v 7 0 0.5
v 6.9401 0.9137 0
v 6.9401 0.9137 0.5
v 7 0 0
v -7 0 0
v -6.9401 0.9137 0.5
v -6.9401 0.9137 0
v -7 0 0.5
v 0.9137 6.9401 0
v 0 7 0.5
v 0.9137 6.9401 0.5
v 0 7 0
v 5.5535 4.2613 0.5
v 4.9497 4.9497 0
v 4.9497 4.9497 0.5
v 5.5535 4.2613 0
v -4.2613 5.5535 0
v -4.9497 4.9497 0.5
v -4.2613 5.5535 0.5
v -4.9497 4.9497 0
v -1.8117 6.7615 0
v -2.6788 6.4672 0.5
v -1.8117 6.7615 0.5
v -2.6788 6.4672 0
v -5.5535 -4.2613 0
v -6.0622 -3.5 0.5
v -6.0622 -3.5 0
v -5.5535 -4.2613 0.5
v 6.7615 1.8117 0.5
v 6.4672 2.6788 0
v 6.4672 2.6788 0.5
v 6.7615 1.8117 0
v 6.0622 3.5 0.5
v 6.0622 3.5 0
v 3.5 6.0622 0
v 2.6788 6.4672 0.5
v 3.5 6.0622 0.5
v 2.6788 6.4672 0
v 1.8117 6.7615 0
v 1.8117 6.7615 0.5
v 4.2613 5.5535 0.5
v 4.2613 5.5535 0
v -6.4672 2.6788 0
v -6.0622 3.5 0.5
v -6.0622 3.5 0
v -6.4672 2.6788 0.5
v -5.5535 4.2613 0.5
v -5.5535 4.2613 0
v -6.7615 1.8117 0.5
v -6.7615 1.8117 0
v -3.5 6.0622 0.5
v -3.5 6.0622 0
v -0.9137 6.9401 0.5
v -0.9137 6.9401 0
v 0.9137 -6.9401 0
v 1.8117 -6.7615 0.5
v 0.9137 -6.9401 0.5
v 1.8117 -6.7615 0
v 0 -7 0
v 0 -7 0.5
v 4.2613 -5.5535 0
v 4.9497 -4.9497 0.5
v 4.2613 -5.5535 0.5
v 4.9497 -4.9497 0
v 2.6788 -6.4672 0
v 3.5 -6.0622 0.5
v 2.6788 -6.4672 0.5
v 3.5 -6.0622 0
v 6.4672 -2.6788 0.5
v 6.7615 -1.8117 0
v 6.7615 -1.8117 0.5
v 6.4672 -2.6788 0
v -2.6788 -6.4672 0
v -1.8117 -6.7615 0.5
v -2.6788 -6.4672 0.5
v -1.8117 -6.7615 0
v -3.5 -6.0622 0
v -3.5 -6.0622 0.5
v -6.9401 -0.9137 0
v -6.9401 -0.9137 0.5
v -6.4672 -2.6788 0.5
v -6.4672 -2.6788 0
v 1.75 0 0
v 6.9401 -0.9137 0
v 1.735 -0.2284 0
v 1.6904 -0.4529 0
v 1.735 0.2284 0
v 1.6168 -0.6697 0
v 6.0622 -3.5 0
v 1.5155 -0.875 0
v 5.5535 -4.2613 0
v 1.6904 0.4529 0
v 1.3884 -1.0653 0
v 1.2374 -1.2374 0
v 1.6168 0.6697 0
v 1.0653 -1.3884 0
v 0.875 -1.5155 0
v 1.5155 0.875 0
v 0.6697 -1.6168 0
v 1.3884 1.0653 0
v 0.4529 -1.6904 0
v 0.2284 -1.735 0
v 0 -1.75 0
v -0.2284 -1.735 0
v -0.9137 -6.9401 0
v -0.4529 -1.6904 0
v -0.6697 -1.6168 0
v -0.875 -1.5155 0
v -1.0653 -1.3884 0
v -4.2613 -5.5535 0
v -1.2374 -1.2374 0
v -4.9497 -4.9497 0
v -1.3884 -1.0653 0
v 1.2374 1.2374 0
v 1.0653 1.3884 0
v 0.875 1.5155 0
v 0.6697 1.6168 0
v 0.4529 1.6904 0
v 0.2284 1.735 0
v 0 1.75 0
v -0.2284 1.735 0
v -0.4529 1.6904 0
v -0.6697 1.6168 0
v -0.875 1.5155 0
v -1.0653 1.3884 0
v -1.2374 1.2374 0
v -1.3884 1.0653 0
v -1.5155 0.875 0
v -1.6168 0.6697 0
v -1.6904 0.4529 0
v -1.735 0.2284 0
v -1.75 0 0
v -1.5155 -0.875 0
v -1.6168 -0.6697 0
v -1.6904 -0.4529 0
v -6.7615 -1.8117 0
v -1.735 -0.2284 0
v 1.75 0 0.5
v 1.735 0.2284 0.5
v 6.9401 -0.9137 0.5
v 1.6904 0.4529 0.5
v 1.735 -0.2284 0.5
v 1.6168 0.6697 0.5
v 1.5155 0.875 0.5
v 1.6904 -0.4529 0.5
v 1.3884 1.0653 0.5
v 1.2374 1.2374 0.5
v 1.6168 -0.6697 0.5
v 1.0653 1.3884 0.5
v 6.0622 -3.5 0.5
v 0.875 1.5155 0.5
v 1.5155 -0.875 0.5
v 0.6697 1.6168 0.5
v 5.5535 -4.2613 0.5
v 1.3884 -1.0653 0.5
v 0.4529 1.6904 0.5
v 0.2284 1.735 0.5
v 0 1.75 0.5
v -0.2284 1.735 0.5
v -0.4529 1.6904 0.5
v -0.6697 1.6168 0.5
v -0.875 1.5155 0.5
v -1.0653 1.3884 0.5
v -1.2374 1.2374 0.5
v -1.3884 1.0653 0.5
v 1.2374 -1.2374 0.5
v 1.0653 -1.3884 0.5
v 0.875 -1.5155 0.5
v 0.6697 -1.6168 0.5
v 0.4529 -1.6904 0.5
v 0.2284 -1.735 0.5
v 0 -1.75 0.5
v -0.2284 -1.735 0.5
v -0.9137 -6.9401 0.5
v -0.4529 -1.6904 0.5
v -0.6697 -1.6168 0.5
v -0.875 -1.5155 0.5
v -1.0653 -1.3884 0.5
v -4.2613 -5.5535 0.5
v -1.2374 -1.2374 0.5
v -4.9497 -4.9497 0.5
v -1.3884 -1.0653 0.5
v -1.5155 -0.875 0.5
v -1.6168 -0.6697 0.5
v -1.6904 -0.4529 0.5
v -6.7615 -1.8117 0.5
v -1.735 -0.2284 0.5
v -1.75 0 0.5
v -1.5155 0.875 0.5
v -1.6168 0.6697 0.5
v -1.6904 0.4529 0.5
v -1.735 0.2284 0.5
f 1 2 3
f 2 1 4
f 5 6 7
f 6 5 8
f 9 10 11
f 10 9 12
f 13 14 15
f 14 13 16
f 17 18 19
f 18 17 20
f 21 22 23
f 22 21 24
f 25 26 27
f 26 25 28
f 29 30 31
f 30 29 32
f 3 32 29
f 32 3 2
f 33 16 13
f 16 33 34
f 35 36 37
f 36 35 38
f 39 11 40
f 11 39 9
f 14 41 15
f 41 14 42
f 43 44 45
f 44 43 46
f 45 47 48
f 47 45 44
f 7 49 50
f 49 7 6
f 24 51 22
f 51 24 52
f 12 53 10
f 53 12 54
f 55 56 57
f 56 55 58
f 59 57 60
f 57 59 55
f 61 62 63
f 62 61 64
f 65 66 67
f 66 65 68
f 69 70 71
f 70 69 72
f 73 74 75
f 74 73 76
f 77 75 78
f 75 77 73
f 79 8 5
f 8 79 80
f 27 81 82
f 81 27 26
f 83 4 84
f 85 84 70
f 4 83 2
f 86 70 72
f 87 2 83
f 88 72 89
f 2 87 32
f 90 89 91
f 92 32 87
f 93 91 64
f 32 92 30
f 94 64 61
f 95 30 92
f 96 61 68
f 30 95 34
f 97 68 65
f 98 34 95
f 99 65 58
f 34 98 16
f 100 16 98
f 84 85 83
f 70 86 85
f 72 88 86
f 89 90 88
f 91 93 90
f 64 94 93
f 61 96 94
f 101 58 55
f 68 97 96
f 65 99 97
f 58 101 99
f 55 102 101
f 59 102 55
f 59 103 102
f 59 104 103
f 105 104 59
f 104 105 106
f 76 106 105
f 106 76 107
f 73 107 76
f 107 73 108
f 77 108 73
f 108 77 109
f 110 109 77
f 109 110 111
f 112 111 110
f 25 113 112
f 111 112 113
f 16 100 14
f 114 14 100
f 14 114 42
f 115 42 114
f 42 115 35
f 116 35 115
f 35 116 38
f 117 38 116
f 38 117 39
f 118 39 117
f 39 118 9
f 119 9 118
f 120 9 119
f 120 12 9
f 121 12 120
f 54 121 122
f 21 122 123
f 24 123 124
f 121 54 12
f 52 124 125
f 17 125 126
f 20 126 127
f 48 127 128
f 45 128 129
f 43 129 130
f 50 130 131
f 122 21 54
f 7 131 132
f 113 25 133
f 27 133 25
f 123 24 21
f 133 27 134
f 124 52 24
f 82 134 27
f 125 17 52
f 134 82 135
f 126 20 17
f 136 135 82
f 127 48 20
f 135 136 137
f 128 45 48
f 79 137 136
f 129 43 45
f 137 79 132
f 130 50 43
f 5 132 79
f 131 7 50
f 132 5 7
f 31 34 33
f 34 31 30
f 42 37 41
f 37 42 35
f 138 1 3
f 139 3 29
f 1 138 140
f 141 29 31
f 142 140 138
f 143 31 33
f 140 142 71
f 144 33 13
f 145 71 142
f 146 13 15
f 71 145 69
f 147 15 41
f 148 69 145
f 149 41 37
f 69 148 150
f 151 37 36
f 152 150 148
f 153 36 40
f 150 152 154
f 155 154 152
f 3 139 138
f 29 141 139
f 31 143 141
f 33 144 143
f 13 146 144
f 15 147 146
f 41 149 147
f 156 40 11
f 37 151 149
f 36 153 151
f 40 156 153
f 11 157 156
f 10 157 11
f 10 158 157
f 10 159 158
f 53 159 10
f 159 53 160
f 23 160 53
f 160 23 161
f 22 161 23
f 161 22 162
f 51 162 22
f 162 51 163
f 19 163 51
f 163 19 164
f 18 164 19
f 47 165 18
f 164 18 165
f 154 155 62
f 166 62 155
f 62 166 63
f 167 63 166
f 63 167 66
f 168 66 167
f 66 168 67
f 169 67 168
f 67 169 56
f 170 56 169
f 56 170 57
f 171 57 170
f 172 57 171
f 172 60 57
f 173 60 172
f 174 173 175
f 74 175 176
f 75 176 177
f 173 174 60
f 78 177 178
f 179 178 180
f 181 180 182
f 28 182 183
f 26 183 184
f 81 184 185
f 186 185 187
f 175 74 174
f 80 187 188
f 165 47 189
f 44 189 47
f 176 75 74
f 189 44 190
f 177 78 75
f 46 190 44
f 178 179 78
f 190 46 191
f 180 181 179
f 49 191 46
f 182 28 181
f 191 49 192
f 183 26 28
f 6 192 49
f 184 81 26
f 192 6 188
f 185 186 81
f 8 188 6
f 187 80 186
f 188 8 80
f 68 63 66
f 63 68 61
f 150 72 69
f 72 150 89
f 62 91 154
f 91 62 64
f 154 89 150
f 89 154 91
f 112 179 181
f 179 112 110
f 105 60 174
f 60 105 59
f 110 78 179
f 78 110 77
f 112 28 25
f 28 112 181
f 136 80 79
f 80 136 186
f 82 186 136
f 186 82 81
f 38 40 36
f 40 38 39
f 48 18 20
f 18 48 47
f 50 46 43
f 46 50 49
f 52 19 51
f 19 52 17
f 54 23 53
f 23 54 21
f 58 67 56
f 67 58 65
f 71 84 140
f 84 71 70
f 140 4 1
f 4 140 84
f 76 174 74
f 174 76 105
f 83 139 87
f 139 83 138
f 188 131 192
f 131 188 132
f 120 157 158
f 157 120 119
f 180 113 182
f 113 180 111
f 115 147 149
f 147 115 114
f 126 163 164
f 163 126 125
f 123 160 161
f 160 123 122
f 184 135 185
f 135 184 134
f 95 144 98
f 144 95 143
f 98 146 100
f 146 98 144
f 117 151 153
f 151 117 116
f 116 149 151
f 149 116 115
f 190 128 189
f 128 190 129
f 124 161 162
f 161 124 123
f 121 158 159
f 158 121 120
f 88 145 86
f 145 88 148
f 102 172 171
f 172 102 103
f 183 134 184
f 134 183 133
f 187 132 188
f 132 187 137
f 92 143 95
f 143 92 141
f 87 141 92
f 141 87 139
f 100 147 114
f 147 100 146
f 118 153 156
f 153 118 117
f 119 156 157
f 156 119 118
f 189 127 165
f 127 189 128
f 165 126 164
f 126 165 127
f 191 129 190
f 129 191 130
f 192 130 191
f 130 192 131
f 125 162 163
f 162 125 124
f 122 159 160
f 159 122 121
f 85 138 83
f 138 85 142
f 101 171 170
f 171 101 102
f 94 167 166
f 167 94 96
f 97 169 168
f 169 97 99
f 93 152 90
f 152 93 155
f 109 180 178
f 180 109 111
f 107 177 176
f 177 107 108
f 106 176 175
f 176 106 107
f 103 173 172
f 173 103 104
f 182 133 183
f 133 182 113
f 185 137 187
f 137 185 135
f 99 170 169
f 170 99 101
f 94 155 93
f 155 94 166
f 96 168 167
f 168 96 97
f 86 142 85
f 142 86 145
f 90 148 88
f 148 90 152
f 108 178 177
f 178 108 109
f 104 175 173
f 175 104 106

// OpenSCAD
// Gen-DP — assembly gap shim, h = run_clear (rotor face -> flange); copper is inside the flanges
include <parameters.scad>;
$fn = 48;
difference() {
    cylinder(d=spacer_pad_od, h=gap_spacer_h);
    translate([0, 0, -0.1]) cylinder(d=spacer_pad_id, h=gap_spacer_h + 0.2);
}
